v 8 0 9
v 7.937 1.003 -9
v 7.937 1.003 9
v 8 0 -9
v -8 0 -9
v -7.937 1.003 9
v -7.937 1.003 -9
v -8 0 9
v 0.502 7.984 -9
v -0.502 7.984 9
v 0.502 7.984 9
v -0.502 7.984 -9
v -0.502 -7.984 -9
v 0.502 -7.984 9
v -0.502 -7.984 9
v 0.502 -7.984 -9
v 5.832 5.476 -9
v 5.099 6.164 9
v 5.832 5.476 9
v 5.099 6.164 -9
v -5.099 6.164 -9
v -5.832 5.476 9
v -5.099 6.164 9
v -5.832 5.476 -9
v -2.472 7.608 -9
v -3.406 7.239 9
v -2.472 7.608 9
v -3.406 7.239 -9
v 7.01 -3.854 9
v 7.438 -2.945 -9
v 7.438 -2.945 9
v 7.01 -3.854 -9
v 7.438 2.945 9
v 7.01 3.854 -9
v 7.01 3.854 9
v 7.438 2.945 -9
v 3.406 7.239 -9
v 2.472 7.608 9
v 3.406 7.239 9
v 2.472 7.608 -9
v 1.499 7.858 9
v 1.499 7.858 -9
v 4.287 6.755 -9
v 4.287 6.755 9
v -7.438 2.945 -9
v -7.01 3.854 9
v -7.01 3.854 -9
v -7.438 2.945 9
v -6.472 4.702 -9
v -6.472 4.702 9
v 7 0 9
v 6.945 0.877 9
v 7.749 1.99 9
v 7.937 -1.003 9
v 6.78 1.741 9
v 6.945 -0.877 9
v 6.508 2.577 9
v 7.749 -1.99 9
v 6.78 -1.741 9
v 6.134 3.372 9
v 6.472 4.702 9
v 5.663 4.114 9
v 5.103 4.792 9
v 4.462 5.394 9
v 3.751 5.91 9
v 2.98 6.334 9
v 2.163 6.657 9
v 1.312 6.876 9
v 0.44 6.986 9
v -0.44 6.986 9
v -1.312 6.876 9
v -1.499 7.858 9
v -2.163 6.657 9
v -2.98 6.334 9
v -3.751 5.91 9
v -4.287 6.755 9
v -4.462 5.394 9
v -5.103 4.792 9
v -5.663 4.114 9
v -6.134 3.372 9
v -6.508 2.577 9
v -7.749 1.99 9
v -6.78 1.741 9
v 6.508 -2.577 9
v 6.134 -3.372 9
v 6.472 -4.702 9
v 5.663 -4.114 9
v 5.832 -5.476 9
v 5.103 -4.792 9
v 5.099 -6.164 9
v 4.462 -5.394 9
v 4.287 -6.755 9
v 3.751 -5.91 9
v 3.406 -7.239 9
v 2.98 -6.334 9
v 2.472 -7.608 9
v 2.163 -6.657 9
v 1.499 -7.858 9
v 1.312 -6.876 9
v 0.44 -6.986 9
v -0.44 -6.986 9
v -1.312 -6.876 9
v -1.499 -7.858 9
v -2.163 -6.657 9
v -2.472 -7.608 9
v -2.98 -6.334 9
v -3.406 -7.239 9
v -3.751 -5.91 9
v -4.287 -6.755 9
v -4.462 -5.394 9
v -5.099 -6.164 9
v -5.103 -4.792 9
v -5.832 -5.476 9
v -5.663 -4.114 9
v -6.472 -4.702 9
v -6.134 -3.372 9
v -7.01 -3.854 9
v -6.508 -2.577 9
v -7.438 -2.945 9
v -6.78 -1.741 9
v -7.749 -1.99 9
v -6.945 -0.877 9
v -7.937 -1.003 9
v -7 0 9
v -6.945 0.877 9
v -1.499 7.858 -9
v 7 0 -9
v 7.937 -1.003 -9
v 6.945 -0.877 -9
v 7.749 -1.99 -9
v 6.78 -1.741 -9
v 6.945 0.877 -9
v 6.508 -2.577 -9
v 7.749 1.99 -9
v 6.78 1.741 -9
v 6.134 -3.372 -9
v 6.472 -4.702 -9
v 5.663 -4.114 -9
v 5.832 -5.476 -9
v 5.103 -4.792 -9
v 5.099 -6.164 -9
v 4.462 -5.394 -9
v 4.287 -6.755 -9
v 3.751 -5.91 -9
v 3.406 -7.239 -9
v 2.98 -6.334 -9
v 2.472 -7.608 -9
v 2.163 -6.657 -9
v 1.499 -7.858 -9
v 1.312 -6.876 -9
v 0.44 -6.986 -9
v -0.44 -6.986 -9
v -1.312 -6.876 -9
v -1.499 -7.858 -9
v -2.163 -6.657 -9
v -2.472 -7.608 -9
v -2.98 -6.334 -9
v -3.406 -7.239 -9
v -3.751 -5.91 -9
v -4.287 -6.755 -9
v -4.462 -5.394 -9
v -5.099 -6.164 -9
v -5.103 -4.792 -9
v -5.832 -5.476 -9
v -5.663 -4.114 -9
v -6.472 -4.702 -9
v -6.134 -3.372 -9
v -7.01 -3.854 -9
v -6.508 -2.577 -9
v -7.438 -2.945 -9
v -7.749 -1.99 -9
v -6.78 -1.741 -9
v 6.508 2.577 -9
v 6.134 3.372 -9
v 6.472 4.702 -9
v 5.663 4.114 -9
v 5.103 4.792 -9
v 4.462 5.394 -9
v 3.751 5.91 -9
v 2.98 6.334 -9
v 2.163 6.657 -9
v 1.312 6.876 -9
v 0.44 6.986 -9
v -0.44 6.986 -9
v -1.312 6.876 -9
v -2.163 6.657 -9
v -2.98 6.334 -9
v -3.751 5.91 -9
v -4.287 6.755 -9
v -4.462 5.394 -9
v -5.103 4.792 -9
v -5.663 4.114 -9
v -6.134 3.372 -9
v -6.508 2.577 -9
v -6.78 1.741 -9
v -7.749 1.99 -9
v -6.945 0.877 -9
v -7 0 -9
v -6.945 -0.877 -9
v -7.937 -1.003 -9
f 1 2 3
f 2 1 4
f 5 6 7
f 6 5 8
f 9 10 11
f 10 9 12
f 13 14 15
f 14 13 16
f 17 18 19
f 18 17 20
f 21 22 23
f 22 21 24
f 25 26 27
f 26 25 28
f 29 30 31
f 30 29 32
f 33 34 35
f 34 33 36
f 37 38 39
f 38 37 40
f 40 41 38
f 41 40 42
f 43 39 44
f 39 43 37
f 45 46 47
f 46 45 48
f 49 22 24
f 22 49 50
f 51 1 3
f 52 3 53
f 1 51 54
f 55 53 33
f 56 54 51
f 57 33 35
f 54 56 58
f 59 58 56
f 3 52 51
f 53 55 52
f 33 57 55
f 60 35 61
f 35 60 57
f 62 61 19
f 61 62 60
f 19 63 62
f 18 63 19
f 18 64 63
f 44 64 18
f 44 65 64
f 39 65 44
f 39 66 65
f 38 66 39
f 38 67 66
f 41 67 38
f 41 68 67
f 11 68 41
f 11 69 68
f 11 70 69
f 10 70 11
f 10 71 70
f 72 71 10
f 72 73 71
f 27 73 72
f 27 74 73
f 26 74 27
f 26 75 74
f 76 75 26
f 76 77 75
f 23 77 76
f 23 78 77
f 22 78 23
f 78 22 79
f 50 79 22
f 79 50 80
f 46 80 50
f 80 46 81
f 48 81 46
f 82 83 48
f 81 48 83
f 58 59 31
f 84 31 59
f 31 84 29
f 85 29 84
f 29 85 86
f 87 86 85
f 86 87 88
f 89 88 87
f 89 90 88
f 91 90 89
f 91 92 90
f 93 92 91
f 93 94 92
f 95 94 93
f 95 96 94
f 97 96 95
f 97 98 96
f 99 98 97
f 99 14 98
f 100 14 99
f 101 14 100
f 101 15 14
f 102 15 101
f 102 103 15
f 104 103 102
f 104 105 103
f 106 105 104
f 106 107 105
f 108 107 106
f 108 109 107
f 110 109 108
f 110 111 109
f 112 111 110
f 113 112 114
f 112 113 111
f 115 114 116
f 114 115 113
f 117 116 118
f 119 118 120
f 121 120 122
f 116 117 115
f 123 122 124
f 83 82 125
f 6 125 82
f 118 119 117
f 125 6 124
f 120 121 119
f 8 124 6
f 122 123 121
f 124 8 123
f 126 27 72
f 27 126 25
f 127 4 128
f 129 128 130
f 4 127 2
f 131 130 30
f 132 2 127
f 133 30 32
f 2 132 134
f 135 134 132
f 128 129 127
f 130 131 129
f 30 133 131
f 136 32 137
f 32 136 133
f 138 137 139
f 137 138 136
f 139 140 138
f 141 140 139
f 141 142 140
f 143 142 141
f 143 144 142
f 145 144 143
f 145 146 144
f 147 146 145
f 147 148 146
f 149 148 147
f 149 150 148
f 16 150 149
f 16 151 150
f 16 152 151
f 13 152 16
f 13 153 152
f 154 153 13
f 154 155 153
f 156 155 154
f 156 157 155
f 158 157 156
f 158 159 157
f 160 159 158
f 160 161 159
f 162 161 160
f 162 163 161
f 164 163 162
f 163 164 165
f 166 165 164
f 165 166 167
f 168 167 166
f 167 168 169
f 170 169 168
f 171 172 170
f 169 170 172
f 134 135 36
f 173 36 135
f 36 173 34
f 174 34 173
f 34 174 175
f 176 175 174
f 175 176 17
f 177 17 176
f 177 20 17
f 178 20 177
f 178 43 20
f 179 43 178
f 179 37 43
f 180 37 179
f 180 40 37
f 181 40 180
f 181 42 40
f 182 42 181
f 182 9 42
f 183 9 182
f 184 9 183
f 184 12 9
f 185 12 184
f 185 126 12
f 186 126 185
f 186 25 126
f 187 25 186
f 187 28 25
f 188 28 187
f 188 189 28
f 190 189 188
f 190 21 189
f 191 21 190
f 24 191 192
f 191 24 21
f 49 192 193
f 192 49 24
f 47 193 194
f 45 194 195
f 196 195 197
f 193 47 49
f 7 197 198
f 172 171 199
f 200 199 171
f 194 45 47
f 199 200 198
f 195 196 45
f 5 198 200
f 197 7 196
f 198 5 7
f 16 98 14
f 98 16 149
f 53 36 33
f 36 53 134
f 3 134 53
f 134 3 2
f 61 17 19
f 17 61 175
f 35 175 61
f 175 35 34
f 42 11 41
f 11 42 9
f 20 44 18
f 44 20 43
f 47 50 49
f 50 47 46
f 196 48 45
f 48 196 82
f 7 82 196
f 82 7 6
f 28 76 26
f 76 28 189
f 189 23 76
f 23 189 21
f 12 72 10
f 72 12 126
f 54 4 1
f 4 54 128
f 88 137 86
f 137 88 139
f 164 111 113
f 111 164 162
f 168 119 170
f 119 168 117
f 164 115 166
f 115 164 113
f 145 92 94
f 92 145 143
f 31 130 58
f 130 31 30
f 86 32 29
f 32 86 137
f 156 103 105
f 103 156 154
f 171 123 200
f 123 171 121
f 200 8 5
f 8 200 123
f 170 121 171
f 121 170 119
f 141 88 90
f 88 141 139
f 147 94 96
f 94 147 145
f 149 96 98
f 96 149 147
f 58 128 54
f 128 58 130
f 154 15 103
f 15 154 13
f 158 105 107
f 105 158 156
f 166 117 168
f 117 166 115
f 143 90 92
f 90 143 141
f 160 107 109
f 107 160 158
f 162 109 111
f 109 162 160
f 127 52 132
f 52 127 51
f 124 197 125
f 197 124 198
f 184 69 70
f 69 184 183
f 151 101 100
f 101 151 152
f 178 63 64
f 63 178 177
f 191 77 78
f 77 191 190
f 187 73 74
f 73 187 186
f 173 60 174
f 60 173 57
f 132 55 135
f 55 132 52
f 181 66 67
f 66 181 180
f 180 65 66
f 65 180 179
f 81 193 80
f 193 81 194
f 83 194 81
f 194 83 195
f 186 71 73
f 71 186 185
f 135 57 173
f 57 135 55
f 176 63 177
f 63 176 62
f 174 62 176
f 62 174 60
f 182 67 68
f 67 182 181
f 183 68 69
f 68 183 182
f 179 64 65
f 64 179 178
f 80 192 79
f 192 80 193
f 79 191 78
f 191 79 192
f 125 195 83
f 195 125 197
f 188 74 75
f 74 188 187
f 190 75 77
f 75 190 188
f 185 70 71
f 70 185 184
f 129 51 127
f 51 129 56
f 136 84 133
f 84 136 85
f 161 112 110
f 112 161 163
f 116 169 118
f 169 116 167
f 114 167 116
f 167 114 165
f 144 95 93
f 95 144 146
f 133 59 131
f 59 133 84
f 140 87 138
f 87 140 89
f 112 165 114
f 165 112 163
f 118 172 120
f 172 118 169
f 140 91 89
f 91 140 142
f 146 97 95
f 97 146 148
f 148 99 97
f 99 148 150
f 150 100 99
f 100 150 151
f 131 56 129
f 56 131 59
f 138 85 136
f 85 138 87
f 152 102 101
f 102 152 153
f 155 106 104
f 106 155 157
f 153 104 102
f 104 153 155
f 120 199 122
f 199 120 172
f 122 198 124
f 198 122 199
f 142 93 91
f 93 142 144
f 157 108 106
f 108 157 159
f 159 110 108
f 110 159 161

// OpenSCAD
$fn = 50;


difference() {
	union() {
		translate(v = [0, 0, -9.0000000000]) {
			cylinder(h = 18, r = 8.0000000000);
		}
	}
	union() {
		translate(v = [0, 0, -100.0000000000]) {
			cylinder(h = 200, r = 7);
		}
	}
}
